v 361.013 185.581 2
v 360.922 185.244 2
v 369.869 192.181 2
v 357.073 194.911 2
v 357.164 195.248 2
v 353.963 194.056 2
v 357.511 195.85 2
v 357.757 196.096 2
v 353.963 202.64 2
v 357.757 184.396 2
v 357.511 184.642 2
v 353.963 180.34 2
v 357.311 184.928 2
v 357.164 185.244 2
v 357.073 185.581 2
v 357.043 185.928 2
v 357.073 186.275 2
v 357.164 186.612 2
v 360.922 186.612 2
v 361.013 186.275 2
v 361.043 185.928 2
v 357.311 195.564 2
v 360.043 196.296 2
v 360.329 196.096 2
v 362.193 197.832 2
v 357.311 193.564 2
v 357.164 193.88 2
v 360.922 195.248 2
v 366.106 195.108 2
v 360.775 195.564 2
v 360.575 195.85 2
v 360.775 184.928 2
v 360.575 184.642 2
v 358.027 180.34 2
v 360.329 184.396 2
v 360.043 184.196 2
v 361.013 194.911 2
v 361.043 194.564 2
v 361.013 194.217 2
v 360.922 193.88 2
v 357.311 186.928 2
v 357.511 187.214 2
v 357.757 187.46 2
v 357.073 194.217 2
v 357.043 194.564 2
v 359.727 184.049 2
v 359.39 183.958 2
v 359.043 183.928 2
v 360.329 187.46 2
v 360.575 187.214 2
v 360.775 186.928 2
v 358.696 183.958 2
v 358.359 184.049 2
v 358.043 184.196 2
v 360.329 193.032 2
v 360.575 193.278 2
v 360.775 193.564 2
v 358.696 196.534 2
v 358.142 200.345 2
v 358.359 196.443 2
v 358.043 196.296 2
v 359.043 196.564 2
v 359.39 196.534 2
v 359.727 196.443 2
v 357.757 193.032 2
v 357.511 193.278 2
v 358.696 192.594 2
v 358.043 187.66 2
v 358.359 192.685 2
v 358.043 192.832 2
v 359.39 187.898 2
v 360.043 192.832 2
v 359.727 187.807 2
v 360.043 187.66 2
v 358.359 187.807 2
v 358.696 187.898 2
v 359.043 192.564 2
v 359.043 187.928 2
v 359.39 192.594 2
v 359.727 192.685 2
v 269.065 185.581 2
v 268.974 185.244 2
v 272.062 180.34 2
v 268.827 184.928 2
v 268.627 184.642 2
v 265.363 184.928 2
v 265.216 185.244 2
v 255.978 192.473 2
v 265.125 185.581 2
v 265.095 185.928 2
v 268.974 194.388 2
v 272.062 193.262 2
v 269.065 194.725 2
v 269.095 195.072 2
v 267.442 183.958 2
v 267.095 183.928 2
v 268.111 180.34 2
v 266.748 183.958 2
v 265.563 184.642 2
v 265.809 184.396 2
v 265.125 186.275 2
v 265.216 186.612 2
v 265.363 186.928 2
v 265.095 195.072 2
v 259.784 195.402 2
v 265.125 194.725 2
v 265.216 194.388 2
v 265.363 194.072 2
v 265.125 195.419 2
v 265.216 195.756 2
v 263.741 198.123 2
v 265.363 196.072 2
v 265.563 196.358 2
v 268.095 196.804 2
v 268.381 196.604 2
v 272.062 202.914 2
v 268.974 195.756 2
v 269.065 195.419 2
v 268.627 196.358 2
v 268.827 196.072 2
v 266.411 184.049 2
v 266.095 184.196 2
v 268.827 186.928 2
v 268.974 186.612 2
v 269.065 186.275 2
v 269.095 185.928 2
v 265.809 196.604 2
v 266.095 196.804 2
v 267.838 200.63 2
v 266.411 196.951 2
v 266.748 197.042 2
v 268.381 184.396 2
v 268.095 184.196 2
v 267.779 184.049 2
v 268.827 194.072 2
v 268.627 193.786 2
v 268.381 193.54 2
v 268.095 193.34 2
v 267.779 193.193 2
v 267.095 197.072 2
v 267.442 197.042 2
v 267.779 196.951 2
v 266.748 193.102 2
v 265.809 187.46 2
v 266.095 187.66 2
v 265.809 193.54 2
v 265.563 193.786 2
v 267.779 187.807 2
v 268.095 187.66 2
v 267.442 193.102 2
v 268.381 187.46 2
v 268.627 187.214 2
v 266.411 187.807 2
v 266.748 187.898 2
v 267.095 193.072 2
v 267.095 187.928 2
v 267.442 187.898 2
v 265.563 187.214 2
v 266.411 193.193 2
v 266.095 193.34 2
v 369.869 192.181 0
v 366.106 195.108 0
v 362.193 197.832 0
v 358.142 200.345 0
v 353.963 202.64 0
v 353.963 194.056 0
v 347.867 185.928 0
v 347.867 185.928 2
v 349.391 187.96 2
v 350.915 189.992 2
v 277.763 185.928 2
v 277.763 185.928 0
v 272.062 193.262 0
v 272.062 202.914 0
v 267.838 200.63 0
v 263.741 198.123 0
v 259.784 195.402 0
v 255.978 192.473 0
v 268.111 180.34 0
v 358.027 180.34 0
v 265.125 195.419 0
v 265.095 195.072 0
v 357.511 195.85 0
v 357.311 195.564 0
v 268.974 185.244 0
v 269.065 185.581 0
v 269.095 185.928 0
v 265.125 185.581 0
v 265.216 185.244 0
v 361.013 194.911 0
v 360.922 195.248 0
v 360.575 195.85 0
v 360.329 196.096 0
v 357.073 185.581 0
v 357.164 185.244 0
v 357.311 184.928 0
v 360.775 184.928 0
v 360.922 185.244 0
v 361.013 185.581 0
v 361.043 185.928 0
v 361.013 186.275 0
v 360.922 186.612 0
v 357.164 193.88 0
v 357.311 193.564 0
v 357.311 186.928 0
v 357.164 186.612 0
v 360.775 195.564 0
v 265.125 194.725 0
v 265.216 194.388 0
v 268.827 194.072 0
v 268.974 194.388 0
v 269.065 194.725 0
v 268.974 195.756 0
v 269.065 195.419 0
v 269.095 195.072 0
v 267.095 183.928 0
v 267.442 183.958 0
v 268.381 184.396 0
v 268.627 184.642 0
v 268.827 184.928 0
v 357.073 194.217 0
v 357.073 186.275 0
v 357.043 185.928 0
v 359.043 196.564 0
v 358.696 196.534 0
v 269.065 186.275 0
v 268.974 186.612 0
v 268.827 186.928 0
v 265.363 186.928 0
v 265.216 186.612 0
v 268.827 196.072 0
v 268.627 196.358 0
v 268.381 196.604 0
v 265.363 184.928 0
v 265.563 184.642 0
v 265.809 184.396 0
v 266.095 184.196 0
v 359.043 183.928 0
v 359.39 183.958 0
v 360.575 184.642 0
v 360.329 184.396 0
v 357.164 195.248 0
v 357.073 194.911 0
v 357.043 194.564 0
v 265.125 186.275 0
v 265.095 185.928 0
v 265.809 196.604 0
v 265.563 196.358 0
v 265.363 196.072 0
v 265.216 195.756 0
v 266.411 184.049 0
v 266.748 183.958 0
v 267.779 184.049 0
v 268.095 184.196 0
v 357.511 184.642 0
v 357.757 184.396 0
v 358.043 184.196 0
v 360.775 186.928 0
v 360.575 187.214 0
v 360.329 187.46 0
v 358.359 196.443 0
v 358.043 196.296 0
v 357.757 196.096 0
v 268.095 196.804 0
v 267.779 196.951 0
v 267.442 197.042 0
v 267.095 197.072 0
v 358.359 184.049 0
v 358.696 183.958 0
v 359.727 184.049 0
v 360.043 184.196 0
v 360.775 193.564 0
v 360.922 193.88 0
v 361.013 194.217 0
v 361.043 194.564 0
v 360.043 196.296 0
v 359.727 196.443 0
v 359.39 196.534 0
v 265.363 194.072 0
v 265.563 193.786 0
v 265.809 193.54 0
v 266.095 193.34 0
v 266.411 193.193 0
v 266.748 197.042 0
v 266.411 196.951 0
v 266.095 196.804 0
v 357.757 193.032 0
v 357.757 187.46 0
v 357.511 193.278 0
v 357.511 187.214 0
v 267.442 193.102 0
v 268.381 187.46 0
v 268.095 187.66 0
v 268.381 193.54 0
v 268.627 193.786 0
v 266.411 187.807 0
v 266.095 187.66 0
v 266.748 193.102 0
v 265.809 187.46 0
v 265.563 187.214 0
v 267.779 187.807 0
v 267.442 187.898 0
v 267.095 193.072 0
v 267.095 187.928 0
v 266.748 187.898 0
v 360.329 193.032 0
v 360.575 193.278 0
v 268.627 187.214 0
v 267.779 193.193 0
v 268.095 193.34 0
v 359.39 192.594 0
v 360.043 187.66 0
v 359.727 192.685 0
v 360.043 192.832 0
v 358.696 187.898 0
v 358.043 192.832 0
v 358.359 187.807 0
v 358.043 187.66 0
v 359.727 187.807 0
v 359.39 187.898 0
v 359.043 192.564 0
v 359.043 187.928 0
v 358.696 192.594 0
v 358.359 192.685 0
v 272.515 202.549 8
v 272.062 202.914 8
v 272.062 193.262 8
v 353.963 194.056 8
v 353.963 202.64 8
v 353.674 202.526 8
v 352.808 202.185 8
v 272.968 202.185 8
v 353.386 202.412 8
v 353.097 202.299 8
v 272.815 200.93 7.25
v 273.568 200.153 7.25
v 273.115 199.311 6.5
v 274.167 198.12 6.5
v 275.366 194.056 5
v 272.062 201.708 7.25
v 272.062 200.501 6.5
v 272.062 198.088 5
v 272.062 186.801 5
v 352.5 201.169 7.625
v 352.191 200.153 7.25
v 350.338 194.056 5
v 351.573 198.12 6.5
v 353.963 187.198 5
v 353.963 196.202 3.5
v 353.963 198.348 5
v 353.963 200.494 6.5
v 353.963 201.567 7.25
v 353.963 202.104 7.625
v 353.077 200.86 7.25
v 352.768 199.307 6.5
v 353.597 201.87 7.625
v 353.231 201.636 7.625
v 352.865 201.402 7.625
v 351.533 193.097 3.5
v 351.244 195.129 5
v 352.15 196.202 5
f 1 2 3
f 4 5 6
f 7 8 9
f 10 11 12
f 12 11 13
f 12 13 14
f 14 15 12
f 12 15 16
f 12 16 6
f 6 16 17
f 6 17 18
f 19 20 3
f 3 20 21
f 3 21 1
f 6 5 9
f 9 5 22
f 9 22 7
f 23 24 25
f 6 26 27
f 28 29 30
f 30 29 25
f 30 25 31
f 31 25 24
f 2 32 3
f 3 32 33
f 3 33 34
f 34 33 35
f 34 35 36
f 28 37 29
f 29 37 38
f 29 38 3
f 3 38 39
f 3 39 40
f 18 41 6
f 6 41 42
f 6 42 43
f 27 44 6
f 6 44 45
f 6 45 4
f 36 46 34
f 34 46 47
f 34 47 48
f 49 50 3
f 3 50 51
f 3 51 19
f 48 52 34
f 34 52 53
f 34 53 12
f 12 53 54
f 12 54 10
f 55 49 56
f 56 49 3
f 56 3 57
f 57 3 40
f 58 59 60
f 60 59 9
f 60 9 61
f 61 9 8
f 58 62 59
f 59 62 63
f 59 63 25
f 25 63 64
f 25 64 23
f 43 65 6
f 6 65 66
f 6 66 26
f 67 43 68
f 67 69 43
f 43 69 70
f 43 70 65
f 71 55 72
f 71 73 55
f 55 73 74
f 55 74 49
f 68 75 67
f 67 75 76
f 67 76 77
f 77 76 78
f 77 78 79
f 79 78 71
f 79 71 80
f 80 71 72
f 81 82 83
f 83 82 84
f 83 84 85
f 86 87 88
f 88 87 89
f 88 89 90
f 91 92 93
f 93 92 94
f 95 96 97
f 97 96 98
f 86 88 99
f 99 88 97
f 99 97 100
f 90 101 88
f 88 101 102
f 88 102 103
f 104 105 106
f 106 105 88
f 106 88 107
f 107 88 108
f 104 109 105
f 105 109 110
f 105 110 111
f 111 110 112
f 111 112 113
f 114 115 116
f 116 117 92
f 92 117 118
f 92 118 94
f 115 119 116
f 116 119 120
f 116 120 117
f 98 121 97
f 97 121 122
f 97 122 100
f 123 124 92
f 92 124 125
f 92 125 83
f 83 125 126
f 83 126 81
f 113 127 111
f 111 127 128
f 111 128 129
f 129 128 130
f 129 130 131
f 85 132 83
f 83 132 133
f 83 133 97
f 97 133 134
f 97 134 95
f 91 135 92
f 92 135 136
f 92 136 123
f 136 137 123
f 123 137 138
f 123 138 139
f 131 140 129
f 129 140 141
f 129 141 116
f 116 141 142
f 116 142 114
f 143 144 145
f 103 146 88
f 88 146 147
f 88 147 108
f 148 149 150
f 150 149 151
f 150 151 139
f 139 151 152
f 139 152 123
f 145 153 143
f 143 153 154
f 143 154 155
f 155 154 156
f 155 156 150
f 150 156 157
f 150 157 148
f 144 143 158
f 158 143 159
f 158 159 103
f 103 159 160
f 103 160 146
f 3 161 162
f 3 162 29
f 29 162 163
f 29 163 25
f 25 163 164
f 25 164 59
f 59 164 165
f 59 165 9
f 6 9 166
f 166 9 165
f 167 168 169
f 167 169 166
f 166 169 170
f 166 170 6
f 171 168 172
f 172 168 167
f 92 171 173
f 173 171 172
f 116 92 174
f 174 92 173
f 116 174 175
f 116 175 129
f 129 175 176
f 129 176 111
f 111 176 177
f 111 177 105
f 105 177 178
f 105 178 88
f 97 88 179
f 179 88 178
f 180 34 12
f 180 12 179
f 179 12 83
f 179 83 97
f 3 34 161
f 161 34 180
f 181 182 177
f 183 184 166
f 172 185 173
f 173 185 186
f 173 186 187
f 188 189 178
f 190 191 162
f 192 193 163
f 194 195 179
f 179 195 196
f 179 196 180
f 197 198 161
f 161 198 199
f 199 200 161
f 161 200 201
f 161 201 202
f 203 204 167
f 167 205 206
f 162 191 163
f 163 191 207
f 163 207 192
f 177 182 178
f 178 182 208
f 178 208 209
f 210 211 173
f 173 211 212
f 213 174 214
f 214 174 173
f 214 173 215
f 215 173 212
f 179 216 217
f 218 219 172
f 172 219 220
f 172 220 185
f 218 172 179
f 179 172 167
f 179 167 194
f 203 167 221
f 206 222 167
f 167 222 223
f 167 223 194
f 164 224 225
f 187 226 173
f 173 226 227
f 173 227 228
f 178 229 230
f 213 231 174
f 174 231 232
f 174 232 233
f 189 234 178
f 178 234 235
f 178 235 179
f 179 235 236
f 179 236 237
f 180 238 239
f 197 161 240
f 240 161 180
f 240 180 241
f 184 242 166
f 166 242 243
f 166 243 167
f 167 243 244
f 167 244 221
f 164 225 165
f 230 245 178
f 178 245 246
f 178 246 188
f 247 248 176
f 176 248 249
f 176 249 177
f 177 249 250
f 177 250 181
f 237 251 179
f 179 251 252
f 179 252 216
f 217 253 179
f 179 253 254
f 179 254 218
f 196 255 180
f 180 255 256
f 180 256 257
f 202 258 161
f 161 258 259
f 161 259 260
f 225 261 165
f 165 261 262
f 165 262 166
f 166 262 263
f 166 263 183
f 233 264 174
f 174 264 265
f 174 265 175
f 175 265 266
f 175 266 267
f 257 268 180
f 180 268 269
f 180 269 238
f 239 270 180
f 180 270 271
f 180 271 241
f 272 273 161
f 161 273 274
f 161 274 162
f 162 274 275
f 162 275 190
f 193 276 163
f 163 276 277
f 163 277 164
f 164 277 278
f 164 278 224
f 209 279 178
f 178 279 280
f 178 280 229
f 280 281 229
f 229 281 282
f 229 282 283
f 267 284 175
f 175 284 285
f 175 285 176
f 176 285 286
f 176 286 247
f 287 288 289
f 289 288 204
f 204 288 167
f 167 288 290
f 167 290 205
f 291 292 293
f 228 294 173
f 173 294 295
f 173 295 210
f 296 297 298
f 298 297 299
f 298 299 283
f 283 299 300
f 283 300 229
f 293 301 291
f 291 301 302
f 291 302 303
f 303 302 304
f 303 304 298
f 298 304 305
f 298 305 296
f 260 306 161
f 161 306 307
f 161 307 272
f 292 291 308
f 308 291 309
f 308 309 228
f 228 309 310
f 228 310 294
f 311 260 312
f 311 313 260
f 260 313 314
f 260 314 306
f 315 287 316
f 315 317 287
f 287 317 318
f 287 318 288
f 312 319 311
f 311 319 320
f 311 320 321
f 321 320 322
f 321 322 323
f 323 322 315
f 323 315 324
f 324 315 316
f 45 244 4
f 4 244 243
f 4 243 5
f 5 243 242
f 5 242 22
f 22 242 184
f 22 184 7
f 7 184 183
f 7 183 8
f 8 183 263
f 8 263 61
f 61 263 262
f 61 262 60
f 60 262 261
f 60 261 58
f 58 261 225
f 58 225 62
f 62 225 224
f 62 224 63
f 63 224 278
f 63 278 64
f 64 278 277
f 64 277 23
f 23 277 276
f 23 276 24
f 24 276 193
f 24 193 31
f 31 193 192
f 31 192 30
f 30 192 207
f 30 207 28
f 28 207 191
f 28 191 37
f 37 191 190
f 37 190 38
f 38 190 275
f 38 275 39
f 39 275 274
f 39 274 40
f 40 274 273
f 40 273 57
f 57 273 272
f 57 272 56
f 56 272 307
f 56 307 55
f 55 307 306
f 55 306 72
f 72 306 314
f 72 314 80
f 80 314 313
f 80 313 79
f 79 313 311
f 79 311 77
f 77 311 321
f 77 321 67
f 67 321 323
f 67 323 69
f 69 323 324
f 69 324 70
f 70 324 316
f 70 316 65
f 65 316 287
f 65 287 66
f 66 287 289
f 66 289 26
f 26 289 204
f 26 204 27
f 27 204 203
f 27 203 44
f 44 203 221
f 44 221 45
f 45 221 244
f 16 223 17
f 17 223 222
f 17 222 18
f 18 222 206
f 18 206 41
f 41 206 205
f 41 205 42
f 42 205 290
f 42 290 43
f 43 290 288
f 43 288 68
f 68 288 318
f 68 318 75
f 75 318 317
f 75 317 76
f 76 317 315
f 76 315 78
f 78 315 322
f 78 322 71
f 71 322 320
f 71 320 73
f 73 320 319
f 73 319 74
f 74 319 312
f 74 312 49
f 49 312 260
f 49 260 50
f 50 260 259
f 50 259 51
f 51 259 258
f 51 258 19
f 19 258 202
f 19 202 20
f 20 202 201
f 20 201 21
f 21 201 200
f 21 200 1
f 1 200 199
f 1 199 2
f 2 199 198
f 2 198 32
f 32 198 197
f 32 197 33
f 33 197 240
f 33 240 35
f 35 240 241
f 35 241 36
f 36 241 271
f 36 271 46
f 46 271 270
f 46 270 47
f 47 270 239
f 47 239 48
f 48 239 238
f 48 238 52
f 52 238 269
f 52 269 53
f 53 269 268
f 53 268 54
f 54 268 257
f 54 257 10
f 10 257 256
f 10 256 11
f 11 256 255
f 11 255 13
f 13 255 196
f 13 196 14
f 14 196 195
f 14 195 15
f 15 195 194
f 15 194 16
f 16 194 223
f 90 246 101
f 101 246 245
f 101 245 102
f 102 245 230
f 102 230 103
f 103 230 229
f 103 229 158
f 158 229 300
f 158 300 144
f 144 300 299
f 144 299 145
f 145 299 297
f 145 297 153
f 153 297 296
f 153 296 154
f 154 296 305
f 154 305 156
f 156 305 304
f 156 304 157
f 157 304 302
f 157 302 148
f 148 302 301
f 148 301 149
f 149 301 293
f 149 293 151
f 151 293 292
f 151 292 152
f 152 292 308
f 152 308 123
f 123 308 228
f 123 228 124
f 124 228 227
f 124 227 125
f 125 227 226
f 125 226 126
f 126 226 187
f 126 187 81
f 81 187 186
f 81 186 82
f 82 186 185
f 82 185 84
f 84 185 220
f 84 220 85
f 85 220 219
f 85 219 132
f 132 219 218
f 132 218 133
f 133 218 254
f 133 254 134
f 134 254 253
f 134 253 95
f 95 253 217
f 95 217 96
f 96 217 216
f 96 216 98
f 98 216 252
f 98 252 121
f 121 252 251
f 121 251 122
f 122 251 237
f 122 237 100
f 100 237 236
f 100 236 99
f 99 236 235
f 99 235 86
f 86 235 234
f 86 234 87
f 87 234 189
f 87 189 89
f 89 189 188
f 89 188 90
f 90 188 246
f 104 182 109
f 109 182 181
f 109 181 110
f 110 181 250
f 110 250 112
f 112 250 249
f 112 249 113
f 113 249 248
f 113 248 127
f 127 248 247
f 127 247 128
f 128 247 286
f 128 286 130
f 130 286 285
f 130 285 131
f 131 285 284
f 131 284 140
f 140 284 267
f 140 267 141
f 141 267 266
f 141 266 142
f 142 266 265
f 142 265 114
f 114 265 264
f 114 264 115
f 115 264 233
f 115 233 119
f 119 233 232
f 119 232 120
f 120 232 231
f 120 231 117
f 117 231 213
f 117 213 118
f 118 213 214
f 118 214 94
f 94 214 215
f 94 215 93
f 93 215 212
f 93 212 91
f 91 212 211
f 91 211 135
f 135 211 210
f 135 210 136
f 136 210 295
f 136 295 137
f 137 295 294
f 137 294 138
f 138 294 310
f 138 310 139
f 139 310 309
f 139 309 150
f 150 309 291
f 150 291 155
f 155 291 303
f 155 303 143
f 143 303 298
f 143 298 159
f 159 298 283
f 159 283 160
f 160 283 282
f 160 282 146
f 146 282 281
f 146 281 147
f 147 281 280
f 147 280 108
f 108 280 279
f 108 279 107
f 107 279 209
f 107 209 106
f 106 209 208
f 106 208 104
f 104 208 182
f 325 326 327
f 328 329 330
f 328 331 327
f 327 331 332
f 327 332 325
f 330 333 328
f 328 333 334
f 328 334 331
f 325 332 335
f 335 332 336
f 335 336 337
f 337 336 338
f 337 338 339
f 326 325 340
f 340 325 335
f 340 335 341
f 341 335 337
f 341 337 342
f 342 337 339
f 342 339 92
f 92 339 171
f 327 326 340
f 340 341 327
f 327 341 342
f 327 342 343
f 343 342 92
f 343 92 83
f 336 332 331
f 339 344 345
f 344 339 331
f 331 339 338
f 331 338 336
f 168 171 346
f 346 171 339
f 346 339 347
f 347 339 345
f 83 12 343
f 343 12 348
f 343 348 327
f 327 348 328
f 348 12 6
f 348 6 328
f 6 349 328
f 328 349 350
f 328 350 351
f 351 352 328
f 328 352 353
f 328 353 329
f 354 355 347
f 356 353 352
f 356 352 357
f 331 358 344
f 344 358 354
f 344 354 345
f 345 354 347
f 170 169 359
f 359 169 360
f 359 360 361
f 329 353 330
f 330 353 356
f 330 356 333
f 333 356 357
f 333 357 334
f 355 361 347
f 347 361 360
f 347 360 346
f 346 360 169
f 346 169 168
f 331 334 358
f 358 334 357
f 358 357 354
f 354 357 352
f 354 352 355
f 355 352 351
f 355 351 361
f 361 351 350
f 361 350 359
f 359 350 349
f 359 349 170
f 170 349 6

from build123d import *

# Parameters (mm, degrees)
BOSS_EXTRUDE1_DEPTH = 2
SKETCH4_R           = 1.999996
CUT_EXTRUDE2_DEPTH  = 3


with BuildPart() as part:
    # Sketch2 → Boss-Extrude1 (new body)
    with BuildSketch(Plane.XY):
        with BuildLine():
            Line((369.86928226, 192.180584327), (358.0270208, 180.34))
            Line((358.0270208, 180.34), (268.1110208, 180.34))
            Line((268.1110208, 180.34), (255.978033197, 192.47289829))
            ThreePointArc((255.978033197, 192.47289829), (263.741388347, 198.123056954), (272.0624988, 202.913996))
            Line((272.0624988, 202.913996), (272.0624988, 193.261996))
            Line((272.0624988, 193.261996), (277.7630208, 185.928))
            Line((277.7630208, 185.928), (347.8670208, 185.928))
            Line((347.8670208, 185.928), (353.9630208, 194.056))
            Line((353.9630208, 194.056), (353.9630208, 202.64014406))
            ThreePointArc((353.9630208, 202.64014406), (362.193484504, 197.832115291), (369.86928226, 192.180584327))
        make_face()
    extrude(amount=BOSS_EXTRUDE1_DEPTH)

    # Sketch4 → Cut-Extrude2 (cut, through all)
    with BuildSketch(Plane(origin=(0, 0, 0), x_dir=(-1, 0, 0), z_dir=(0, 0, -1))):
        with Locations((-359.0430208, 194.564)):
            Circle(SKETCH4_R)
        with Locations((-359.0430208, 185.928)):
            Circle(SKETCH4_R)
        with Locations((-267.0950208, 185.928)):
            Circle(SKETCH4_R)
        with Locations((-267.0950208, 195.072)):
            Circle(SKETCH4_R)
    extrude(amount=-CUT_EXTRUDE2_DEPTH, mode=Mode.SUBTRACT)

    # Sketch5 → Loft4 section 0
    with BuildSketch(Plane.XY.offset(2)):
        Polygon((272.0624988, 193.261996), (272.0624988, 180.34), (353.9630208, 180.34), (353.9630208, 194.056), (347.8670208, 185.928), (277.7630208, 185.928), align=None)
    # Sketch6 → Loft4 section 1
    with BuildSketch(Plane.XY.offset(8)):
        Polygon((272.0624988, 202.913996), (272.0624988, 193.261996), (353.9630208, 194.056), (353.9630208, 202.64014406), (352.808404878, 202.184642252), (272.968388735, 202.184642252), align=None)
    loft()


solid = part.part
